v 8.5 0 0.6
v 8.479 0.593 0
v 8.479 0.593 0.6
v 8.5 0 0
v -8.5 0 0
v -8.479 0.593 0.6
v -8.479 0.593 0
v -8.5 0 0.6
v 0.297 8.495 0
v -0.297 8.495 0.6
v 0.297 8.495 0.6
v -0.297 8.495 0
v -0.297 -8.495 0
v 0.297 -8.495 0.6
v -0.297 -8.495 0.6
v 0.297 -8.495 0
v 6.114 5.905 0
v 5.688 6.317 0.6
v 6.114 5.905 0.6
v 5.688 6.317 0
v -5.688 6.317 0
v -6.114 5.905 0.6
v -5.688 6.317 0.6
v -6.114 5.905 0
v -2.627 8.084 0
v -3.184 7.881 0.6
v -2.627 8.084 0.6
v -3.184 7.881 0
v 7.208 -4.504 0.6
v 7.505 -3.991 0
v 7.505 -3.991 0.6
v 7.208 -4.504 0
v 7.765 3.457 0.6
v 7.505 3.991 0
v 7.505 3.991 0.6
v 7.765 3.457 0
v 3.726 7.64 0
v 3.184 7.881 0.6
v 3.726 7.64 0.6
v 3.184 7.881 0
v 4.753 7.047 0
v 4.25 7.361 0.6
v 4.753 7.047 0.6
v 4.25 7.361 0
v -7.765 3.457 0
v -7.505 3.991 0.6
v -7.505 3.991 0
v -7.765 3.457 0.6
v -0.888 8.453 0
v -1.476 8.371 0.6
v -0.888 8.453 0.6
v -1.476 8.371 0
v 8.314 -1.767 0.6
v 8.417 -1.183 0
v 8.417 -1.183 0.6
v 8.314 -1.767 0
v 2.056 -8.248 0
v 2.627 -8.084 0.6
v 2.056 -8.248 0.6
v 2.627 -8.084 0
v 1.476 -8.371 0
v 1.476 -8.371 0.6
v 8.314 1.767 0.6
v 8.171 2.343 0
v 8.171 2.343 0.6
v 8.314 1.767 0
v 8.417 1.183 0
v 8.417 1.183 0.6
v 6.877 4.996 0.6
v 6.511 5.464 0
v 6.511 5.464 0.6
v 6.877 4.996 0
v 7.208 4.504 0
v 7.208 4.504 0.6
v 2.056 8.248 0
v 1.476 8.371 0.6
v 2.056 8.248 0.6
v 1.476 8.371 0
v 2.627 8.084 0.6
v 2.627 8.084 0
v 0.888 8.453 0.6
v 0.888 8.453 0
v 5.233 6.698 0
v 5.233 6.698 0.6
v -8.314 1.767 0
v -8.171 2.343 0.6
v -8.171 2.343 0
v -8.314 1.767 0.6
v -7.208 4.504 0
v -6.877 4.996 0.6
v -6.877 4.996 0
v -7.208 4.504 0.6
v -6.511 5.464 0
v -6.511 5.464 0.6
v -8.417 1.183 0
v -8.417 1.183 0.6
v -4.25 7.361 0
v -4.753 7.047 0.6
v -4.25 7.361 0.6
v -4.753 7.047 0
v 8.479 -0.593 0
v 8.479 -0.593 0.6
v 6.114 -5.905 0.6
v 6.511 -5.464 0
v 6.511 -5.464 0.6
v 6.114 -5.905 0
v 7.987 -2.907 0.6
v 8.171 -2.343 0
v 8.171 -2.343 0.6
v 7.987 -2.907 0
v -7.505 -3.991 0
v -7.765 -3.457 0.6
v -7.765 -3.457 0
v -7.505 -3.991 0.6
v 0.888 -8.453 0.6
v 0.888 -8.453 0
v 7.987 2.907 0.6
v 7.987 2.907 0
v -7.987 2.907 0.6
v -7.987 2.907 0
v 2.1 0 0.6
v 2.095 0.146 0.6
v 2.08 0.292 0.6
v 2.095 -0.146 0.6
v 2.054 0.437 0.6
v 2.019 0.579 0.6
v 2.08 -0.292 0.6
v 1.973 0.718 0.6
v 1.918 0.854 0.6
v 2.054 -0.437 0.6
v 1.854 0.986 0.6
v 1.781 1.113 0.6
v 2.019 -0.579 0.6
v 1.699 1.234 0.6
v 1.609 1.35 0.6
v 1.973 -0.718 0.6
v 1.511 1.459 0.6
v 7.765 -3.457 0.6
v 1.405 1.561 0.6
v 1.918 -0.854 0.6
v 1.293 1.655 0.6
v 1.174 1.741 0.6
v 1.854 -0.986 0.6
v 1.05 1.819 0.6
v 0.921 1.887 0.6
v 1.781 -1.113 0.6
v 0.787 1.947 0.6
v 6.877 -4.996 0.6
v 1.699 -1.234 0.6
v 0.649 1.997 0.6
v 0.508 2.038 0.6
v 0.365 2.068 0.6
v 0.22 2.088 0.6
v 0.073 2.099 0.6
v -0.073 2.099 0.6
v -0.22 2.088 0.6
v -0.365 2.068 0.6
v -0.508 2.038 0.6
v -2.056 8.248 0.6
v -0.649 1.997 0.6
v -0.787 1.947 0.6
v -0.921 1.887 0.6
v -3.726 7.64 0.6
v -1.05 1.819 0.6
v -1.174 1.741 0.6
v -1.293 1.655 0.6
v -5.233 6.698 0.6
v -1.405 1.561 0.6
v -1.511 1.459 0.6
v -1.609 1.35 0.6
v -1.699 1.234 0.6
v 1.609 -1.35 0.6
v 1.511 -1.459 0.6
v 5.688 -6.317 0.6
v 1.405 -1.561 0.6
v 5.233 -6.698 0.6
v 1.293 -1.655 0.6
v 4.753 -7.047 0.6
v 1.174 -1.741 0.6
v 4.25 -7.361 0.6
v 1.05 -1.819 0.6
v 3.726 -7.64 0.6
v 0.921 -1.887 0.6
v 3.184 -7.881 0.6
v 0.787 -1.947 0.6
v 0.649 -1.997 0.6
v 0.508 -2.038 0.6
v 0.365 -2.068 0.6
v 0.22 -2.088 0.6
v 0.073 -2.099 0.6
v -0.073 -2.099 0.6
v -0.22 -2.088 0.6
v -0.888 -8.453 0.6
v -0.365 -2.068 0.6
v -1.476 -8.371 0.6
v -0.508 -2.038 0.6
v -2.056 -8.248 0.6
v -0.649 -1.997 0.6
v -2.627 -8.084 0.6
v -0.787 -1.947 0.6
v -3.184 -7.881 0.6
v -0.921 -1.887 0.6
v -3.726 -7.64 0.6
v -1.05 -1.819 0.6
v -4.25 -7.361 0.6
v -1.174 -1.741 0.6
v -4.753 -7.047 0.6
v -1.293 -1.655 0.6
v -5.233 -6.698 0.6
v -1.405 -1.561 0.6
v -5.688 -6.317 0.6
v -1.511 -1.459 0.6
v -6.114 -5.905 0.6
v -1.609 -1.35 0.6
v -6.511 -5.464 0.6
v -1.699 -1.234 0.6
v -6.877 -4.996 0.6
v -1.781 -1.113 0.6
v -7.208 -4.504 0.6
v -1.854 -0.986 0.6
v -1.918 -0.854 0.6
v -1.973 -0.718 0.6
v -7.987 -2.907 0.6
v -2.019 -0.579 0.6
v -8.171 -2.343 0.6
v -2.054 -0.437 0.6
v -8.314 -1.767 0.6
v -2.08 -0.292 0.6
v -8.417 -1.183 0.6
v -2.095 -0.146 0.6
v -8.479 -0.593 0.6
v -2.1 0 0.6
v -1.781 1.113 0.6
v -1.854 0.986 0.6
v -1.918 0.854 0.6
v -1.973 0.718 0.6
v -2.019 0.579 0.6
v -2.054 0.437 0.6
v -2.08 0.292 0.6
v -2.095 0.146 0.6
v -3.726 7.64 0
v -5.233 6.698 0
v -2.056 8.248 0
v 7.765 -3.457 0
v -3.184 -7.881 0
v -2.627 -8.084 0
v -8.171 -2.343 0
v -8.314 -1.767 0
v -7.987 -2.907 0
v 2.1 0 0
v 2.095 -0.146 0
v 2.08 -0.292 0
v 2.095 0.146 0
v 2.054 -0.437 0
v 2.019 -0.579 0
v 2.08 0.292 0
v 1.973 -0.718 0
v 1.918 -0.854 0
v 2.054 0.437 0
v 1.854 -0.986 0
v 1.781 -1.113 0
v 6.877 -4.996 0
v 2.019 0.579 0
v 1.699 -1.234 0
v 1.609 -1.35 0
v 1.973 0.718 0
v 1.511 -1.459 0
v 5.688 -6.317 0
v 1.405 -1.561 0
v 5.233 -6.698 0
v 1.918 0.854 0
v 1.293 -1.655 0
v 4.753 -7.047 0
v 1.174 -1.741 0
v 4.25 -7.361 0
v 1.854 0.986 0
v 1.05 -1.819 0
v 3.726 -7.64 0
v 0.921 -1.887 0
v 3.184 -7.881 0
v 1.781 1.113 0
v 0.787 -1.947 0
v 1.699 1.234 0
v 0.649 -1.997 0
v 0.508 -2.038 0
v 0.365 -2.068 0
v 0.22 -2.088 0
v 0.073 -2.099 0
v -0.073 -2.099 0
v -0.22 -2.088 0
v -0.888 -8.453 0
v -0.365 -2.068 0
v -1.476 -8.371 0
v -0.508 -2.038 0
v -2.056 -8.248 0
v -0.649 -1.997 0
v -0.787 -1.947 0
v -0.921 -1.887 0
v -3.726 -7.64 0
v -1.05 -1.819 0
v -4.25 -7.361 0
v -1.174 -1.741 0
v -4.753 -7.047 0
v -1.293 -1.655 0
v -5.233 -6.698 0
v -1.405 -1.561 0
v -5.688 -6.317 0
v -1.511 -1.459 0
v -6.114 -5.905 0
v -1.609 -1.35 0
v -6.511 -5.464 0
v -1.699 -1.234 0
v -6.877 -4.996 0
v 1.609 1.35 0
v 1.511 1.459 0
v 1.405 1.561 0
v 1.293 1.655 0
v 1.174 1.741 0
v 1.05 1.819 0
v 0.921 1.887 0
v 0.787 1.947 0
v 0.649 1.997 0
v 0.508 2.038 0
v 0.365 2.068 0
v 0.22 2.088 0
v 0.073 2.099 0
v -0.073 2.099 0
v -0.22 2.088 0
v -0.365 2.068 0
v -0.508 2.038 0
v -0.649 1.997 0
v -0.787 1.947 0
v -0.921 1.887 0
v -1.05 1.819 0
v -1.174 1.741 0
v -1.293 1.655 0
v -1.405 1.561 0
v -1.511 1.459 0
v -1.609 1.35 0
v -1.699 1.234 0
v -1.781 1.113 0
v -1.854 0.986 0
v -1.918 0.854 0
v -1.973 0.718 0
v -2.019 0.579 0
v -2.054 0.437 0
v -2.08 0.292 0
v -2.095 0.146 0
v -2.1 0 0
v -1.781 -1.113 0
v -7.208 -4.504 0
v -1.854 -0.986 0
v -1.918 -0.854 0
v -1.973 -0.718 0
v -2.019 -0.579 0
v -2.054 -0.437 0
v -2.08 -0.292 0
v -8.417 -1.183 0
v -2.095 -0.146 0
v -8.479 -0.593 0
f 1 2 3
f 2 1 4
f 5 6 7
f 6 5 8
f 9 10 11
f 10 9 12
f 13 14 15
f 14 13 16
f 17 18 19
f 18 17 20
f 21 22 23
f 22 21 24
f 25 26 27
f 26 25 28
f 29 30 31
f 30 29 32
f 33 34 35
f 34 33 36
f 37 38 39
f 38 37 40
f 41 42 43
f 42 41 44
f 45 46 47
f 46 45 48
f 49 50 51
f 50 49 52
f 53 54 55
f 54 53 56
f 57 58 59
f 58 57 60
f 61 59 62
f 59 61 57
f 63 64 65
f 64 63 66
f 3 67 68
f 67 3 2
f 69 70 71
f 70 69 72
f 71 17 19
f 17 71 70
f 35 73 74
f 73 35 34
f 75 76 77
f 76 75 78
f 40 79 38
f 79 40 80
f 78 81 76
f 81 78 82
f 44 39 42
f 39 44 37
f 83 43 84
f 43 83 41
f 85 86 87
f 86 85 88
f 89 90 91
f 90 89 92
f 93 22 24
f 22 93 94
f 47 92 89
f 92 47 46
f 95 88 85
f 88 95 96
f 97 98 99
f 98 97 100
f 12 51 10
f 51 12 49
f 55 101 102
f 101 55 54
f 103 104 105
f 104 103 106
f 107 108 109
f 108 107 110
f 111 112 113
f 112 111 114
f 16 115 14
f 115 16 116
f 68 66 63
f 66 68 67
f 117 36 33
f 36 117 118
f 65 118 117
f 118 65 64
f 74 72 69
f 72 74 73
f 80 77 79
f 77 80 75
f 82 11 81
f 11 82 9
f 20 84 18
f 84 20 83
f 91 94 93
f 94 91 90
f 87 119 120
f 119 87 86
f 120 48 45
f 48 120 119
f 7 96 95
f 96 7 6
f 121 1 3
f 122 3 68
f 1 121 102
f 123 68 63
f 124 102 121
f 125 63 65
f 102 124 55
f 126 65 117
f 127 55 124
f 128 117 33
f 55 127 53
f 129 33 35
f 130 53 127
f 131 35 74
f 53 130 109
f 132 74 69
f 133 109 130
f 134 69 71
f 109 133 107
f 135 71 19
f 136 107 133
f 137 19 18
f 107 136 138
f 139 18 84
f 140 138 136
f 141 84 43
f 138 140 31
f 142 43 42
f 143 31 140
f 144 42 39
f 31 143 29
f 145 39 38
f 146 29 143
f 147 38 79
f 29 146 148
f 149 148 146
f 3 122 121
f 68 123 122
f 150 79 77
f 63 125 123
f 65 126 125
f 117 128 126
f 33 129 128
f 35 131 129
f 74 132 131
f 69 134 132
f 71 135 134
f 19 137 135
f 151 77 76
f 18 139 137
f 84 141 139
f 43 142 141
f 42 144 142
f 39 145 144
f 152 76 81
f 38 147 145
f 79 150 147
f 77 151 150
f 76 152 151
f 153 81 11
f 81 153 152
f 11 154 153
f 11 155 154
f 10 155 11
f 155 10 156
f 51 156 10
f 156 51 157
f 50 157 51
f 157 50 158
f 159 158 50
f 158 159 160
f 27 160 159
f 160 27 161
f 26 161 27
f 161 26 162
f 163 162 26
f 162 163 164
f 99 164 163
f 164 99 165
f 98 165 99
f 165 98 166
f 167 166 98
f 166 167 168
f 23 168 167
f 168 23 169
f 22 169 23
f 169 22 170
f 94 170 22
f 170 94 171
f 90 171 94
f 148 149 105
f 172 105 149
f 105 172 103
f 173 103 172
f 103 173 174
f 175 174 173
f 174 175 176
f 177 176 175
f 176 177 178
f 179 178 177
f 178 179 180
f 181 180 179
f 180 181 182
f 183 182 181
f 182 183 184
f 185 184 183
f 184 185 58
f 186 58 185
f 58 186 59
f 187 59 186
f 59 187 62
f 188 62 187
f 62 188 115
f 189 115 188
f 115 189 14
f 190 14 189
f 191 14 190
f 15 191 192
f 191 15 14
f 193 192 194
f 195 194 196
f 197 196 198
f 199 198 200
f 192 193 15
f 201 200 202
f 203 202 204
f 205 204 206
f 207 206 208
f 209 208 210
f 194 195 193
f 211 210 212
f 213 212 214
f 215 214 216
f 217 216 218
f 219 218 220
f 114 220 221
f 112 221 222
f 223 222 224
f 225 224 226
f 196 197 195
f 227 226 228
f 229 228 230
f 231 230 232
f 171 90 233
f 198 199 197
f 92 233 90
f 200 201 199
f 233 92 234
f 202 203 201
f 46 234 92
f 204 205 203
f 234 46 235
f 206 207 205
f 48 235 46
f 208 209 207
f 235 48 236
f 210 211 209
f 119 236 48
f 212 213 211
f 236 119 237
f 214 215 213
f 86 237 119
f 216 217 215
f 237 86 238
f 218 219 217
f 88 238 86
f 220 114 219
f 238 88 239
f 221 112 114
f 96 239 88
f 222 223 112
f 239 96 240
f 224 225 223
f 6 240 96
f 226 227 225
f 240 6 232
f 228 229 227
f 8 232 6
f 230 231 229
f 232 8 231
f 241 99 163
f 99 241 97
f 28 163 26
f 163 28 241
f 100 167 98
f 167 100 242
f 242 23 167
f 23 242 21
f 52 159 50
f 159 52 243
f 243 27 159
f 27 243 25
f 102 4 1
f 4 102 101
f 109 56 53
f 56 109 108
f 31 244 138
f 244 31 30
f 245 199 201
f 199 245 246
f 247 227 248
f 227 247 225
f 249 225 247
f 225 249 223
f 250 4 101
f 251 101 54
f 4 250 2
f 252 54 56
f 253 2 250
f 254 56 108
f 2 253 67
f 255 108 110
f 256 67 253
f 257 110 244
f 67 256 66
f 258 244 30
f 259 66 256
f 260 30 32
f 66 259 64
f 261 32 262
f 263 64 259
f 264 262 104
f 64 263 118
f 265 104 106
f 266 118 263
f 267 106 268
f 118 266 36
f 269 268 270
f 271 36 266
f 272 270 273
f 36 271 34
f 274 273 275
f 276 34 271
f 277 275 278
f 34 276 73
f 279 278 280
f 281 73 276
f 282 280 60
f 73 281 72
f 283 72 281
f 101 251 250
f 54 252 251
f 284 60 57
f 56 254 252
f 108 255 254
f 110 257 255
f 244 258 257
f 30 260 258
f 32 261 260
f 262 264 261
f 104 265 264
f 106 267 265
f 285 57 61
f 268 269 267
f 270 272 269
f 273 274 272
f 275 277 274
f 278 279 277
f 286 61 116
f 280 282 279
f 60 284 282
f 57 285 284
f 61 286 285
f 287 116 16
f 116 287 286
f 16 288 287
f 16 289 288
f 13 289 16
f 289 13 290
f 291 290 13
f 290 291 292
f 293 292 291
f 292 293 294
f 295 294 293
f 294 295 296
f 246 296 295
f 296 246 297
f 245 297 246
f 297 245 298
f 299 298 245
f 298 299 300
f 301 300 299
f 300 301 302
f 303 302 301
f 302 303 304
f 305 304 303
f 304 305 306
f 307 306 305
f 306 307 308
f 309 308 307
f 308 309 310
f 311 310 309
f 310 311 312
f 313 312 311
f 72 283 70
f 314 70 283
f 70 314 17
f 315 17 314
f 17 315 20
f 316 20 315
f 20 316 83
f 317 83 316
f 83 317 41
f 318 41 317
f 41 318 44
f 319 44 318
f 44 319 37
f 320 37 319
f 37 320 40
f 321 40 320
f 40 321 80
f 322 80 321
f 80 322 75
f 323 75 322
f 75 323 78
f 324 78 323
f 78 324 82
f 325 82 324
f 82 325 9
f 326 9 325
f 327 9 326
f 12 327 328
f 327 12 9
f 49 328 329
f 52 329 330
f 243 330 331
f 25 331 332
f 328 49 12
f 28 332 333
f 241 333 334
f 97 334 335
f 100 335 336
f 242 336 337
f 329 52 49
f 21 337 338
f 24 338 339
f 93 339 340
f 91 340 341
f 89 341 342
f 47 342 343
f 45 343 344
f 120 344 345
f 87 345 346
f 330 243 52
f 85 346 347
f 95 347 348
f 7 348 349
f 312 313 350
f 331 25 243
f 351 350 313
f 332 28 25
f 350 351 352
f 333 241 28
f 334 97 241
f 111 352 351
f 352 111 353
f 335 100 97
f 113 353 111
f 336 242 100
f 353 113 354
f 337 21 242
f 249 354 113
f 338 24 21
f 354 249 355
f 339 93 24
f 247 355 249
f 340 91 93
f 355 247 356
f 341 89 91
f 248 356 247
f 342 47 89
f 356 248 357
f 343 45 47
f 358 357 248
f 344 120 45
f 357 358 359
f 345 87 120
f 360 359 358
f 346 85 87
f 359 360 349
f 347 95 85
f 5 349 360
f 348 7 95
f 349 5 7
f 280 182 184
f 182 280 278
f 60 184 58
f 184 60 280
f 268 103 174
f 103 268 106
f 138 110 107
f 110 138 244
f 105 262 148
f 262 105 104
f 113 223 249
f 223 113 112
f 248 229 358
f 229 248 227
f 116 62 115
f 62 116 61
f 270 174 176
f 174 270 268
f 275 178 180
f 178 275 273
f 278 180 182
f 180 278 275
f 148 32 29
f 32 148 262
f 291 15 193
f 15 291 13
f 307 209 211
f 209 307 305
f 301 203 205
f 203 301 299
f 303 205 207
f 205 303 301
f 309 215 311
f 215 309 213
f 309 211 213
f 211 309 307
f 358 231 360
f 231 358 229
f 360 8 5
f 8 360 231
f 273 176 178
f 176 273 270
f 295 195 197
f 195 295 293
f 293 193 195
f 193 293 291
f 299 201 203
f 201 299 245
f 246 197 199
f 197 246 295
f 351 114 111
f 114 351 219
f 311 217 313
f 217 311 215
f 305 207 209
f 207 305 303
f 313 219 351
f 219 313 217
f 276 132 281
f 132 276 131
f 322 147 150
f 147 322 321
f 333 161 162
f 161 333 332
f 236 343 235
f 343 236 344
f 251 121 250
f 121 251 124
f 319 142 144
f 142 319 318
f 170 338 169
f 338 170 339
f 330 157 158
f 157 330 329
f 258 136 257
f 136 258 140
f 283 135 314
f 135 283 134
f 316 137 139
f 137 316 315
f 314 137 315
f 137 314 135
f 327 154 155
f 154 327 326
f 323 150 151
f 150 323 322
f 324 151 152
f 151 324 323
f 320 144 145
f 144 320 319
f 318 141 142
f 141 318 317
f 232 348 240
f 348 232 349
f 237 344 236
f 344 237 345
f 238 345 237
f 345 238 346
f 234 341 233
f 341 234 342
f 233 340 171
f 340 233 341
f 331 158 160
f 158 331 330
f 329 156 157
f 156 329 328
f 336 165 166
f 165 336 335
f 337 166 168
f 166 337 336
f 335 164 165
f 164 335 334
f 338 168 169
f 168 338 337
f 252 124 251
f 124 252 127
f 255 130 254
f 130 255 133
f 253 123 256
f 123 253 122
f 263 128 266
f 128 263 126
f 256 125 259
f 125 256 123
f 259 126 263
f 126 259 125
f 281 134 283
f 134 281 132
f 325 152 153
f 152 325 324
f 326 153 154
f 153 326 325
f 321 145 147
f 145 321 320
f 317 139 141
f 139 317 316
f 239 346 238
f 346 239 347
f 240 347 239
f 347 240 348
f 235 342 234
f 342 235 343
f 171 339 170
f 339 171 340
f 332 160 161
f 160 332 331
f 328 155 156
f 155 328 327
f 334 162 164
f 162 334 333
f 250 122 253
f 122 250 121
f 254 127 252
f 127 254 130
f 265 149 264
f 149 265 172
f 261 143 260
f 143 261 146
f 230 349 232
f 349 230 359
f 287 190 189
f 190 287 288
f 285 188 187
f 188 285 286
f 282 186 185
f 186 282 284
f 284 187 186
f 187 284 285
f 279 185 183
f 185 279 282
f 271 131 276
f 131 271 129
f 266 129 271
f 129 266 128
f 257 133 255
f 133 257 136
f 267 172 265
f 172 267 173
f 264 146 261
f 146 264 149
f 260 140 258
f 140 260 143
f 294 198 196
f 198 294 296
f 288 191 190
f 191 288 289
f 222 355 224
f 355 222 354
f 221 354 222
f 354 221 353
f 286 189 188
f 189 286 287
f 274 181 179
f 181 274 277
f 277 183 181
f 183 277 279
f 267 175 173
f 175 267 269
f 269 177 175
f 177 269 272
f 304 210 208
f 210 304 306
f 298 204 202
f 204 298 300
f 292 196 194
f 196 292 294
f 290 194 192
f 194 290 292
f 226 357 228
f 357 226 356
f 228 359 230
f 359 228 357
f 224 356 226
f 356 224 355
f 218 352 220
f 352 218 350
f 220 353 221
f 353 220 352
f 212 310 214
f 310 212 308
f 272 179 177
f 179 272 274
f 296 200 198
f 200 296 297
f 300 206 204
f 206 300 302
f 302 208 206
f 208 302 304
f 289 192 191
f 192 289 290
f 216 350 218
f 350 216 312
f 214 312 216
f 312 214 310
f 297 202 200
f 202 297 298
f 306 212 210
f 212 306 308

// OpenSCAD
// -*- mode: SCAD ; c-file-style: "ellemtel" ; coding: utf-8 -*-
//
// Buchse für M3, grob, 10 mm
//
// © 2017 Roland Sieker <ospalh@gmail.com>
// Licence: CC-0 4.0

d_i = 4.2;
r_i = d_i/2;
h = 0.6;
d_o = 17;
r_o = d_o/2;
ms = 0.1;  // Muggeseggele

$fn=90;

difference()
{
    cylinder(r=r_o, h=h);
    translate([0,0,-ms])
    {
        cylinder(r=r_i, h=h+2*ms);
    }
}
